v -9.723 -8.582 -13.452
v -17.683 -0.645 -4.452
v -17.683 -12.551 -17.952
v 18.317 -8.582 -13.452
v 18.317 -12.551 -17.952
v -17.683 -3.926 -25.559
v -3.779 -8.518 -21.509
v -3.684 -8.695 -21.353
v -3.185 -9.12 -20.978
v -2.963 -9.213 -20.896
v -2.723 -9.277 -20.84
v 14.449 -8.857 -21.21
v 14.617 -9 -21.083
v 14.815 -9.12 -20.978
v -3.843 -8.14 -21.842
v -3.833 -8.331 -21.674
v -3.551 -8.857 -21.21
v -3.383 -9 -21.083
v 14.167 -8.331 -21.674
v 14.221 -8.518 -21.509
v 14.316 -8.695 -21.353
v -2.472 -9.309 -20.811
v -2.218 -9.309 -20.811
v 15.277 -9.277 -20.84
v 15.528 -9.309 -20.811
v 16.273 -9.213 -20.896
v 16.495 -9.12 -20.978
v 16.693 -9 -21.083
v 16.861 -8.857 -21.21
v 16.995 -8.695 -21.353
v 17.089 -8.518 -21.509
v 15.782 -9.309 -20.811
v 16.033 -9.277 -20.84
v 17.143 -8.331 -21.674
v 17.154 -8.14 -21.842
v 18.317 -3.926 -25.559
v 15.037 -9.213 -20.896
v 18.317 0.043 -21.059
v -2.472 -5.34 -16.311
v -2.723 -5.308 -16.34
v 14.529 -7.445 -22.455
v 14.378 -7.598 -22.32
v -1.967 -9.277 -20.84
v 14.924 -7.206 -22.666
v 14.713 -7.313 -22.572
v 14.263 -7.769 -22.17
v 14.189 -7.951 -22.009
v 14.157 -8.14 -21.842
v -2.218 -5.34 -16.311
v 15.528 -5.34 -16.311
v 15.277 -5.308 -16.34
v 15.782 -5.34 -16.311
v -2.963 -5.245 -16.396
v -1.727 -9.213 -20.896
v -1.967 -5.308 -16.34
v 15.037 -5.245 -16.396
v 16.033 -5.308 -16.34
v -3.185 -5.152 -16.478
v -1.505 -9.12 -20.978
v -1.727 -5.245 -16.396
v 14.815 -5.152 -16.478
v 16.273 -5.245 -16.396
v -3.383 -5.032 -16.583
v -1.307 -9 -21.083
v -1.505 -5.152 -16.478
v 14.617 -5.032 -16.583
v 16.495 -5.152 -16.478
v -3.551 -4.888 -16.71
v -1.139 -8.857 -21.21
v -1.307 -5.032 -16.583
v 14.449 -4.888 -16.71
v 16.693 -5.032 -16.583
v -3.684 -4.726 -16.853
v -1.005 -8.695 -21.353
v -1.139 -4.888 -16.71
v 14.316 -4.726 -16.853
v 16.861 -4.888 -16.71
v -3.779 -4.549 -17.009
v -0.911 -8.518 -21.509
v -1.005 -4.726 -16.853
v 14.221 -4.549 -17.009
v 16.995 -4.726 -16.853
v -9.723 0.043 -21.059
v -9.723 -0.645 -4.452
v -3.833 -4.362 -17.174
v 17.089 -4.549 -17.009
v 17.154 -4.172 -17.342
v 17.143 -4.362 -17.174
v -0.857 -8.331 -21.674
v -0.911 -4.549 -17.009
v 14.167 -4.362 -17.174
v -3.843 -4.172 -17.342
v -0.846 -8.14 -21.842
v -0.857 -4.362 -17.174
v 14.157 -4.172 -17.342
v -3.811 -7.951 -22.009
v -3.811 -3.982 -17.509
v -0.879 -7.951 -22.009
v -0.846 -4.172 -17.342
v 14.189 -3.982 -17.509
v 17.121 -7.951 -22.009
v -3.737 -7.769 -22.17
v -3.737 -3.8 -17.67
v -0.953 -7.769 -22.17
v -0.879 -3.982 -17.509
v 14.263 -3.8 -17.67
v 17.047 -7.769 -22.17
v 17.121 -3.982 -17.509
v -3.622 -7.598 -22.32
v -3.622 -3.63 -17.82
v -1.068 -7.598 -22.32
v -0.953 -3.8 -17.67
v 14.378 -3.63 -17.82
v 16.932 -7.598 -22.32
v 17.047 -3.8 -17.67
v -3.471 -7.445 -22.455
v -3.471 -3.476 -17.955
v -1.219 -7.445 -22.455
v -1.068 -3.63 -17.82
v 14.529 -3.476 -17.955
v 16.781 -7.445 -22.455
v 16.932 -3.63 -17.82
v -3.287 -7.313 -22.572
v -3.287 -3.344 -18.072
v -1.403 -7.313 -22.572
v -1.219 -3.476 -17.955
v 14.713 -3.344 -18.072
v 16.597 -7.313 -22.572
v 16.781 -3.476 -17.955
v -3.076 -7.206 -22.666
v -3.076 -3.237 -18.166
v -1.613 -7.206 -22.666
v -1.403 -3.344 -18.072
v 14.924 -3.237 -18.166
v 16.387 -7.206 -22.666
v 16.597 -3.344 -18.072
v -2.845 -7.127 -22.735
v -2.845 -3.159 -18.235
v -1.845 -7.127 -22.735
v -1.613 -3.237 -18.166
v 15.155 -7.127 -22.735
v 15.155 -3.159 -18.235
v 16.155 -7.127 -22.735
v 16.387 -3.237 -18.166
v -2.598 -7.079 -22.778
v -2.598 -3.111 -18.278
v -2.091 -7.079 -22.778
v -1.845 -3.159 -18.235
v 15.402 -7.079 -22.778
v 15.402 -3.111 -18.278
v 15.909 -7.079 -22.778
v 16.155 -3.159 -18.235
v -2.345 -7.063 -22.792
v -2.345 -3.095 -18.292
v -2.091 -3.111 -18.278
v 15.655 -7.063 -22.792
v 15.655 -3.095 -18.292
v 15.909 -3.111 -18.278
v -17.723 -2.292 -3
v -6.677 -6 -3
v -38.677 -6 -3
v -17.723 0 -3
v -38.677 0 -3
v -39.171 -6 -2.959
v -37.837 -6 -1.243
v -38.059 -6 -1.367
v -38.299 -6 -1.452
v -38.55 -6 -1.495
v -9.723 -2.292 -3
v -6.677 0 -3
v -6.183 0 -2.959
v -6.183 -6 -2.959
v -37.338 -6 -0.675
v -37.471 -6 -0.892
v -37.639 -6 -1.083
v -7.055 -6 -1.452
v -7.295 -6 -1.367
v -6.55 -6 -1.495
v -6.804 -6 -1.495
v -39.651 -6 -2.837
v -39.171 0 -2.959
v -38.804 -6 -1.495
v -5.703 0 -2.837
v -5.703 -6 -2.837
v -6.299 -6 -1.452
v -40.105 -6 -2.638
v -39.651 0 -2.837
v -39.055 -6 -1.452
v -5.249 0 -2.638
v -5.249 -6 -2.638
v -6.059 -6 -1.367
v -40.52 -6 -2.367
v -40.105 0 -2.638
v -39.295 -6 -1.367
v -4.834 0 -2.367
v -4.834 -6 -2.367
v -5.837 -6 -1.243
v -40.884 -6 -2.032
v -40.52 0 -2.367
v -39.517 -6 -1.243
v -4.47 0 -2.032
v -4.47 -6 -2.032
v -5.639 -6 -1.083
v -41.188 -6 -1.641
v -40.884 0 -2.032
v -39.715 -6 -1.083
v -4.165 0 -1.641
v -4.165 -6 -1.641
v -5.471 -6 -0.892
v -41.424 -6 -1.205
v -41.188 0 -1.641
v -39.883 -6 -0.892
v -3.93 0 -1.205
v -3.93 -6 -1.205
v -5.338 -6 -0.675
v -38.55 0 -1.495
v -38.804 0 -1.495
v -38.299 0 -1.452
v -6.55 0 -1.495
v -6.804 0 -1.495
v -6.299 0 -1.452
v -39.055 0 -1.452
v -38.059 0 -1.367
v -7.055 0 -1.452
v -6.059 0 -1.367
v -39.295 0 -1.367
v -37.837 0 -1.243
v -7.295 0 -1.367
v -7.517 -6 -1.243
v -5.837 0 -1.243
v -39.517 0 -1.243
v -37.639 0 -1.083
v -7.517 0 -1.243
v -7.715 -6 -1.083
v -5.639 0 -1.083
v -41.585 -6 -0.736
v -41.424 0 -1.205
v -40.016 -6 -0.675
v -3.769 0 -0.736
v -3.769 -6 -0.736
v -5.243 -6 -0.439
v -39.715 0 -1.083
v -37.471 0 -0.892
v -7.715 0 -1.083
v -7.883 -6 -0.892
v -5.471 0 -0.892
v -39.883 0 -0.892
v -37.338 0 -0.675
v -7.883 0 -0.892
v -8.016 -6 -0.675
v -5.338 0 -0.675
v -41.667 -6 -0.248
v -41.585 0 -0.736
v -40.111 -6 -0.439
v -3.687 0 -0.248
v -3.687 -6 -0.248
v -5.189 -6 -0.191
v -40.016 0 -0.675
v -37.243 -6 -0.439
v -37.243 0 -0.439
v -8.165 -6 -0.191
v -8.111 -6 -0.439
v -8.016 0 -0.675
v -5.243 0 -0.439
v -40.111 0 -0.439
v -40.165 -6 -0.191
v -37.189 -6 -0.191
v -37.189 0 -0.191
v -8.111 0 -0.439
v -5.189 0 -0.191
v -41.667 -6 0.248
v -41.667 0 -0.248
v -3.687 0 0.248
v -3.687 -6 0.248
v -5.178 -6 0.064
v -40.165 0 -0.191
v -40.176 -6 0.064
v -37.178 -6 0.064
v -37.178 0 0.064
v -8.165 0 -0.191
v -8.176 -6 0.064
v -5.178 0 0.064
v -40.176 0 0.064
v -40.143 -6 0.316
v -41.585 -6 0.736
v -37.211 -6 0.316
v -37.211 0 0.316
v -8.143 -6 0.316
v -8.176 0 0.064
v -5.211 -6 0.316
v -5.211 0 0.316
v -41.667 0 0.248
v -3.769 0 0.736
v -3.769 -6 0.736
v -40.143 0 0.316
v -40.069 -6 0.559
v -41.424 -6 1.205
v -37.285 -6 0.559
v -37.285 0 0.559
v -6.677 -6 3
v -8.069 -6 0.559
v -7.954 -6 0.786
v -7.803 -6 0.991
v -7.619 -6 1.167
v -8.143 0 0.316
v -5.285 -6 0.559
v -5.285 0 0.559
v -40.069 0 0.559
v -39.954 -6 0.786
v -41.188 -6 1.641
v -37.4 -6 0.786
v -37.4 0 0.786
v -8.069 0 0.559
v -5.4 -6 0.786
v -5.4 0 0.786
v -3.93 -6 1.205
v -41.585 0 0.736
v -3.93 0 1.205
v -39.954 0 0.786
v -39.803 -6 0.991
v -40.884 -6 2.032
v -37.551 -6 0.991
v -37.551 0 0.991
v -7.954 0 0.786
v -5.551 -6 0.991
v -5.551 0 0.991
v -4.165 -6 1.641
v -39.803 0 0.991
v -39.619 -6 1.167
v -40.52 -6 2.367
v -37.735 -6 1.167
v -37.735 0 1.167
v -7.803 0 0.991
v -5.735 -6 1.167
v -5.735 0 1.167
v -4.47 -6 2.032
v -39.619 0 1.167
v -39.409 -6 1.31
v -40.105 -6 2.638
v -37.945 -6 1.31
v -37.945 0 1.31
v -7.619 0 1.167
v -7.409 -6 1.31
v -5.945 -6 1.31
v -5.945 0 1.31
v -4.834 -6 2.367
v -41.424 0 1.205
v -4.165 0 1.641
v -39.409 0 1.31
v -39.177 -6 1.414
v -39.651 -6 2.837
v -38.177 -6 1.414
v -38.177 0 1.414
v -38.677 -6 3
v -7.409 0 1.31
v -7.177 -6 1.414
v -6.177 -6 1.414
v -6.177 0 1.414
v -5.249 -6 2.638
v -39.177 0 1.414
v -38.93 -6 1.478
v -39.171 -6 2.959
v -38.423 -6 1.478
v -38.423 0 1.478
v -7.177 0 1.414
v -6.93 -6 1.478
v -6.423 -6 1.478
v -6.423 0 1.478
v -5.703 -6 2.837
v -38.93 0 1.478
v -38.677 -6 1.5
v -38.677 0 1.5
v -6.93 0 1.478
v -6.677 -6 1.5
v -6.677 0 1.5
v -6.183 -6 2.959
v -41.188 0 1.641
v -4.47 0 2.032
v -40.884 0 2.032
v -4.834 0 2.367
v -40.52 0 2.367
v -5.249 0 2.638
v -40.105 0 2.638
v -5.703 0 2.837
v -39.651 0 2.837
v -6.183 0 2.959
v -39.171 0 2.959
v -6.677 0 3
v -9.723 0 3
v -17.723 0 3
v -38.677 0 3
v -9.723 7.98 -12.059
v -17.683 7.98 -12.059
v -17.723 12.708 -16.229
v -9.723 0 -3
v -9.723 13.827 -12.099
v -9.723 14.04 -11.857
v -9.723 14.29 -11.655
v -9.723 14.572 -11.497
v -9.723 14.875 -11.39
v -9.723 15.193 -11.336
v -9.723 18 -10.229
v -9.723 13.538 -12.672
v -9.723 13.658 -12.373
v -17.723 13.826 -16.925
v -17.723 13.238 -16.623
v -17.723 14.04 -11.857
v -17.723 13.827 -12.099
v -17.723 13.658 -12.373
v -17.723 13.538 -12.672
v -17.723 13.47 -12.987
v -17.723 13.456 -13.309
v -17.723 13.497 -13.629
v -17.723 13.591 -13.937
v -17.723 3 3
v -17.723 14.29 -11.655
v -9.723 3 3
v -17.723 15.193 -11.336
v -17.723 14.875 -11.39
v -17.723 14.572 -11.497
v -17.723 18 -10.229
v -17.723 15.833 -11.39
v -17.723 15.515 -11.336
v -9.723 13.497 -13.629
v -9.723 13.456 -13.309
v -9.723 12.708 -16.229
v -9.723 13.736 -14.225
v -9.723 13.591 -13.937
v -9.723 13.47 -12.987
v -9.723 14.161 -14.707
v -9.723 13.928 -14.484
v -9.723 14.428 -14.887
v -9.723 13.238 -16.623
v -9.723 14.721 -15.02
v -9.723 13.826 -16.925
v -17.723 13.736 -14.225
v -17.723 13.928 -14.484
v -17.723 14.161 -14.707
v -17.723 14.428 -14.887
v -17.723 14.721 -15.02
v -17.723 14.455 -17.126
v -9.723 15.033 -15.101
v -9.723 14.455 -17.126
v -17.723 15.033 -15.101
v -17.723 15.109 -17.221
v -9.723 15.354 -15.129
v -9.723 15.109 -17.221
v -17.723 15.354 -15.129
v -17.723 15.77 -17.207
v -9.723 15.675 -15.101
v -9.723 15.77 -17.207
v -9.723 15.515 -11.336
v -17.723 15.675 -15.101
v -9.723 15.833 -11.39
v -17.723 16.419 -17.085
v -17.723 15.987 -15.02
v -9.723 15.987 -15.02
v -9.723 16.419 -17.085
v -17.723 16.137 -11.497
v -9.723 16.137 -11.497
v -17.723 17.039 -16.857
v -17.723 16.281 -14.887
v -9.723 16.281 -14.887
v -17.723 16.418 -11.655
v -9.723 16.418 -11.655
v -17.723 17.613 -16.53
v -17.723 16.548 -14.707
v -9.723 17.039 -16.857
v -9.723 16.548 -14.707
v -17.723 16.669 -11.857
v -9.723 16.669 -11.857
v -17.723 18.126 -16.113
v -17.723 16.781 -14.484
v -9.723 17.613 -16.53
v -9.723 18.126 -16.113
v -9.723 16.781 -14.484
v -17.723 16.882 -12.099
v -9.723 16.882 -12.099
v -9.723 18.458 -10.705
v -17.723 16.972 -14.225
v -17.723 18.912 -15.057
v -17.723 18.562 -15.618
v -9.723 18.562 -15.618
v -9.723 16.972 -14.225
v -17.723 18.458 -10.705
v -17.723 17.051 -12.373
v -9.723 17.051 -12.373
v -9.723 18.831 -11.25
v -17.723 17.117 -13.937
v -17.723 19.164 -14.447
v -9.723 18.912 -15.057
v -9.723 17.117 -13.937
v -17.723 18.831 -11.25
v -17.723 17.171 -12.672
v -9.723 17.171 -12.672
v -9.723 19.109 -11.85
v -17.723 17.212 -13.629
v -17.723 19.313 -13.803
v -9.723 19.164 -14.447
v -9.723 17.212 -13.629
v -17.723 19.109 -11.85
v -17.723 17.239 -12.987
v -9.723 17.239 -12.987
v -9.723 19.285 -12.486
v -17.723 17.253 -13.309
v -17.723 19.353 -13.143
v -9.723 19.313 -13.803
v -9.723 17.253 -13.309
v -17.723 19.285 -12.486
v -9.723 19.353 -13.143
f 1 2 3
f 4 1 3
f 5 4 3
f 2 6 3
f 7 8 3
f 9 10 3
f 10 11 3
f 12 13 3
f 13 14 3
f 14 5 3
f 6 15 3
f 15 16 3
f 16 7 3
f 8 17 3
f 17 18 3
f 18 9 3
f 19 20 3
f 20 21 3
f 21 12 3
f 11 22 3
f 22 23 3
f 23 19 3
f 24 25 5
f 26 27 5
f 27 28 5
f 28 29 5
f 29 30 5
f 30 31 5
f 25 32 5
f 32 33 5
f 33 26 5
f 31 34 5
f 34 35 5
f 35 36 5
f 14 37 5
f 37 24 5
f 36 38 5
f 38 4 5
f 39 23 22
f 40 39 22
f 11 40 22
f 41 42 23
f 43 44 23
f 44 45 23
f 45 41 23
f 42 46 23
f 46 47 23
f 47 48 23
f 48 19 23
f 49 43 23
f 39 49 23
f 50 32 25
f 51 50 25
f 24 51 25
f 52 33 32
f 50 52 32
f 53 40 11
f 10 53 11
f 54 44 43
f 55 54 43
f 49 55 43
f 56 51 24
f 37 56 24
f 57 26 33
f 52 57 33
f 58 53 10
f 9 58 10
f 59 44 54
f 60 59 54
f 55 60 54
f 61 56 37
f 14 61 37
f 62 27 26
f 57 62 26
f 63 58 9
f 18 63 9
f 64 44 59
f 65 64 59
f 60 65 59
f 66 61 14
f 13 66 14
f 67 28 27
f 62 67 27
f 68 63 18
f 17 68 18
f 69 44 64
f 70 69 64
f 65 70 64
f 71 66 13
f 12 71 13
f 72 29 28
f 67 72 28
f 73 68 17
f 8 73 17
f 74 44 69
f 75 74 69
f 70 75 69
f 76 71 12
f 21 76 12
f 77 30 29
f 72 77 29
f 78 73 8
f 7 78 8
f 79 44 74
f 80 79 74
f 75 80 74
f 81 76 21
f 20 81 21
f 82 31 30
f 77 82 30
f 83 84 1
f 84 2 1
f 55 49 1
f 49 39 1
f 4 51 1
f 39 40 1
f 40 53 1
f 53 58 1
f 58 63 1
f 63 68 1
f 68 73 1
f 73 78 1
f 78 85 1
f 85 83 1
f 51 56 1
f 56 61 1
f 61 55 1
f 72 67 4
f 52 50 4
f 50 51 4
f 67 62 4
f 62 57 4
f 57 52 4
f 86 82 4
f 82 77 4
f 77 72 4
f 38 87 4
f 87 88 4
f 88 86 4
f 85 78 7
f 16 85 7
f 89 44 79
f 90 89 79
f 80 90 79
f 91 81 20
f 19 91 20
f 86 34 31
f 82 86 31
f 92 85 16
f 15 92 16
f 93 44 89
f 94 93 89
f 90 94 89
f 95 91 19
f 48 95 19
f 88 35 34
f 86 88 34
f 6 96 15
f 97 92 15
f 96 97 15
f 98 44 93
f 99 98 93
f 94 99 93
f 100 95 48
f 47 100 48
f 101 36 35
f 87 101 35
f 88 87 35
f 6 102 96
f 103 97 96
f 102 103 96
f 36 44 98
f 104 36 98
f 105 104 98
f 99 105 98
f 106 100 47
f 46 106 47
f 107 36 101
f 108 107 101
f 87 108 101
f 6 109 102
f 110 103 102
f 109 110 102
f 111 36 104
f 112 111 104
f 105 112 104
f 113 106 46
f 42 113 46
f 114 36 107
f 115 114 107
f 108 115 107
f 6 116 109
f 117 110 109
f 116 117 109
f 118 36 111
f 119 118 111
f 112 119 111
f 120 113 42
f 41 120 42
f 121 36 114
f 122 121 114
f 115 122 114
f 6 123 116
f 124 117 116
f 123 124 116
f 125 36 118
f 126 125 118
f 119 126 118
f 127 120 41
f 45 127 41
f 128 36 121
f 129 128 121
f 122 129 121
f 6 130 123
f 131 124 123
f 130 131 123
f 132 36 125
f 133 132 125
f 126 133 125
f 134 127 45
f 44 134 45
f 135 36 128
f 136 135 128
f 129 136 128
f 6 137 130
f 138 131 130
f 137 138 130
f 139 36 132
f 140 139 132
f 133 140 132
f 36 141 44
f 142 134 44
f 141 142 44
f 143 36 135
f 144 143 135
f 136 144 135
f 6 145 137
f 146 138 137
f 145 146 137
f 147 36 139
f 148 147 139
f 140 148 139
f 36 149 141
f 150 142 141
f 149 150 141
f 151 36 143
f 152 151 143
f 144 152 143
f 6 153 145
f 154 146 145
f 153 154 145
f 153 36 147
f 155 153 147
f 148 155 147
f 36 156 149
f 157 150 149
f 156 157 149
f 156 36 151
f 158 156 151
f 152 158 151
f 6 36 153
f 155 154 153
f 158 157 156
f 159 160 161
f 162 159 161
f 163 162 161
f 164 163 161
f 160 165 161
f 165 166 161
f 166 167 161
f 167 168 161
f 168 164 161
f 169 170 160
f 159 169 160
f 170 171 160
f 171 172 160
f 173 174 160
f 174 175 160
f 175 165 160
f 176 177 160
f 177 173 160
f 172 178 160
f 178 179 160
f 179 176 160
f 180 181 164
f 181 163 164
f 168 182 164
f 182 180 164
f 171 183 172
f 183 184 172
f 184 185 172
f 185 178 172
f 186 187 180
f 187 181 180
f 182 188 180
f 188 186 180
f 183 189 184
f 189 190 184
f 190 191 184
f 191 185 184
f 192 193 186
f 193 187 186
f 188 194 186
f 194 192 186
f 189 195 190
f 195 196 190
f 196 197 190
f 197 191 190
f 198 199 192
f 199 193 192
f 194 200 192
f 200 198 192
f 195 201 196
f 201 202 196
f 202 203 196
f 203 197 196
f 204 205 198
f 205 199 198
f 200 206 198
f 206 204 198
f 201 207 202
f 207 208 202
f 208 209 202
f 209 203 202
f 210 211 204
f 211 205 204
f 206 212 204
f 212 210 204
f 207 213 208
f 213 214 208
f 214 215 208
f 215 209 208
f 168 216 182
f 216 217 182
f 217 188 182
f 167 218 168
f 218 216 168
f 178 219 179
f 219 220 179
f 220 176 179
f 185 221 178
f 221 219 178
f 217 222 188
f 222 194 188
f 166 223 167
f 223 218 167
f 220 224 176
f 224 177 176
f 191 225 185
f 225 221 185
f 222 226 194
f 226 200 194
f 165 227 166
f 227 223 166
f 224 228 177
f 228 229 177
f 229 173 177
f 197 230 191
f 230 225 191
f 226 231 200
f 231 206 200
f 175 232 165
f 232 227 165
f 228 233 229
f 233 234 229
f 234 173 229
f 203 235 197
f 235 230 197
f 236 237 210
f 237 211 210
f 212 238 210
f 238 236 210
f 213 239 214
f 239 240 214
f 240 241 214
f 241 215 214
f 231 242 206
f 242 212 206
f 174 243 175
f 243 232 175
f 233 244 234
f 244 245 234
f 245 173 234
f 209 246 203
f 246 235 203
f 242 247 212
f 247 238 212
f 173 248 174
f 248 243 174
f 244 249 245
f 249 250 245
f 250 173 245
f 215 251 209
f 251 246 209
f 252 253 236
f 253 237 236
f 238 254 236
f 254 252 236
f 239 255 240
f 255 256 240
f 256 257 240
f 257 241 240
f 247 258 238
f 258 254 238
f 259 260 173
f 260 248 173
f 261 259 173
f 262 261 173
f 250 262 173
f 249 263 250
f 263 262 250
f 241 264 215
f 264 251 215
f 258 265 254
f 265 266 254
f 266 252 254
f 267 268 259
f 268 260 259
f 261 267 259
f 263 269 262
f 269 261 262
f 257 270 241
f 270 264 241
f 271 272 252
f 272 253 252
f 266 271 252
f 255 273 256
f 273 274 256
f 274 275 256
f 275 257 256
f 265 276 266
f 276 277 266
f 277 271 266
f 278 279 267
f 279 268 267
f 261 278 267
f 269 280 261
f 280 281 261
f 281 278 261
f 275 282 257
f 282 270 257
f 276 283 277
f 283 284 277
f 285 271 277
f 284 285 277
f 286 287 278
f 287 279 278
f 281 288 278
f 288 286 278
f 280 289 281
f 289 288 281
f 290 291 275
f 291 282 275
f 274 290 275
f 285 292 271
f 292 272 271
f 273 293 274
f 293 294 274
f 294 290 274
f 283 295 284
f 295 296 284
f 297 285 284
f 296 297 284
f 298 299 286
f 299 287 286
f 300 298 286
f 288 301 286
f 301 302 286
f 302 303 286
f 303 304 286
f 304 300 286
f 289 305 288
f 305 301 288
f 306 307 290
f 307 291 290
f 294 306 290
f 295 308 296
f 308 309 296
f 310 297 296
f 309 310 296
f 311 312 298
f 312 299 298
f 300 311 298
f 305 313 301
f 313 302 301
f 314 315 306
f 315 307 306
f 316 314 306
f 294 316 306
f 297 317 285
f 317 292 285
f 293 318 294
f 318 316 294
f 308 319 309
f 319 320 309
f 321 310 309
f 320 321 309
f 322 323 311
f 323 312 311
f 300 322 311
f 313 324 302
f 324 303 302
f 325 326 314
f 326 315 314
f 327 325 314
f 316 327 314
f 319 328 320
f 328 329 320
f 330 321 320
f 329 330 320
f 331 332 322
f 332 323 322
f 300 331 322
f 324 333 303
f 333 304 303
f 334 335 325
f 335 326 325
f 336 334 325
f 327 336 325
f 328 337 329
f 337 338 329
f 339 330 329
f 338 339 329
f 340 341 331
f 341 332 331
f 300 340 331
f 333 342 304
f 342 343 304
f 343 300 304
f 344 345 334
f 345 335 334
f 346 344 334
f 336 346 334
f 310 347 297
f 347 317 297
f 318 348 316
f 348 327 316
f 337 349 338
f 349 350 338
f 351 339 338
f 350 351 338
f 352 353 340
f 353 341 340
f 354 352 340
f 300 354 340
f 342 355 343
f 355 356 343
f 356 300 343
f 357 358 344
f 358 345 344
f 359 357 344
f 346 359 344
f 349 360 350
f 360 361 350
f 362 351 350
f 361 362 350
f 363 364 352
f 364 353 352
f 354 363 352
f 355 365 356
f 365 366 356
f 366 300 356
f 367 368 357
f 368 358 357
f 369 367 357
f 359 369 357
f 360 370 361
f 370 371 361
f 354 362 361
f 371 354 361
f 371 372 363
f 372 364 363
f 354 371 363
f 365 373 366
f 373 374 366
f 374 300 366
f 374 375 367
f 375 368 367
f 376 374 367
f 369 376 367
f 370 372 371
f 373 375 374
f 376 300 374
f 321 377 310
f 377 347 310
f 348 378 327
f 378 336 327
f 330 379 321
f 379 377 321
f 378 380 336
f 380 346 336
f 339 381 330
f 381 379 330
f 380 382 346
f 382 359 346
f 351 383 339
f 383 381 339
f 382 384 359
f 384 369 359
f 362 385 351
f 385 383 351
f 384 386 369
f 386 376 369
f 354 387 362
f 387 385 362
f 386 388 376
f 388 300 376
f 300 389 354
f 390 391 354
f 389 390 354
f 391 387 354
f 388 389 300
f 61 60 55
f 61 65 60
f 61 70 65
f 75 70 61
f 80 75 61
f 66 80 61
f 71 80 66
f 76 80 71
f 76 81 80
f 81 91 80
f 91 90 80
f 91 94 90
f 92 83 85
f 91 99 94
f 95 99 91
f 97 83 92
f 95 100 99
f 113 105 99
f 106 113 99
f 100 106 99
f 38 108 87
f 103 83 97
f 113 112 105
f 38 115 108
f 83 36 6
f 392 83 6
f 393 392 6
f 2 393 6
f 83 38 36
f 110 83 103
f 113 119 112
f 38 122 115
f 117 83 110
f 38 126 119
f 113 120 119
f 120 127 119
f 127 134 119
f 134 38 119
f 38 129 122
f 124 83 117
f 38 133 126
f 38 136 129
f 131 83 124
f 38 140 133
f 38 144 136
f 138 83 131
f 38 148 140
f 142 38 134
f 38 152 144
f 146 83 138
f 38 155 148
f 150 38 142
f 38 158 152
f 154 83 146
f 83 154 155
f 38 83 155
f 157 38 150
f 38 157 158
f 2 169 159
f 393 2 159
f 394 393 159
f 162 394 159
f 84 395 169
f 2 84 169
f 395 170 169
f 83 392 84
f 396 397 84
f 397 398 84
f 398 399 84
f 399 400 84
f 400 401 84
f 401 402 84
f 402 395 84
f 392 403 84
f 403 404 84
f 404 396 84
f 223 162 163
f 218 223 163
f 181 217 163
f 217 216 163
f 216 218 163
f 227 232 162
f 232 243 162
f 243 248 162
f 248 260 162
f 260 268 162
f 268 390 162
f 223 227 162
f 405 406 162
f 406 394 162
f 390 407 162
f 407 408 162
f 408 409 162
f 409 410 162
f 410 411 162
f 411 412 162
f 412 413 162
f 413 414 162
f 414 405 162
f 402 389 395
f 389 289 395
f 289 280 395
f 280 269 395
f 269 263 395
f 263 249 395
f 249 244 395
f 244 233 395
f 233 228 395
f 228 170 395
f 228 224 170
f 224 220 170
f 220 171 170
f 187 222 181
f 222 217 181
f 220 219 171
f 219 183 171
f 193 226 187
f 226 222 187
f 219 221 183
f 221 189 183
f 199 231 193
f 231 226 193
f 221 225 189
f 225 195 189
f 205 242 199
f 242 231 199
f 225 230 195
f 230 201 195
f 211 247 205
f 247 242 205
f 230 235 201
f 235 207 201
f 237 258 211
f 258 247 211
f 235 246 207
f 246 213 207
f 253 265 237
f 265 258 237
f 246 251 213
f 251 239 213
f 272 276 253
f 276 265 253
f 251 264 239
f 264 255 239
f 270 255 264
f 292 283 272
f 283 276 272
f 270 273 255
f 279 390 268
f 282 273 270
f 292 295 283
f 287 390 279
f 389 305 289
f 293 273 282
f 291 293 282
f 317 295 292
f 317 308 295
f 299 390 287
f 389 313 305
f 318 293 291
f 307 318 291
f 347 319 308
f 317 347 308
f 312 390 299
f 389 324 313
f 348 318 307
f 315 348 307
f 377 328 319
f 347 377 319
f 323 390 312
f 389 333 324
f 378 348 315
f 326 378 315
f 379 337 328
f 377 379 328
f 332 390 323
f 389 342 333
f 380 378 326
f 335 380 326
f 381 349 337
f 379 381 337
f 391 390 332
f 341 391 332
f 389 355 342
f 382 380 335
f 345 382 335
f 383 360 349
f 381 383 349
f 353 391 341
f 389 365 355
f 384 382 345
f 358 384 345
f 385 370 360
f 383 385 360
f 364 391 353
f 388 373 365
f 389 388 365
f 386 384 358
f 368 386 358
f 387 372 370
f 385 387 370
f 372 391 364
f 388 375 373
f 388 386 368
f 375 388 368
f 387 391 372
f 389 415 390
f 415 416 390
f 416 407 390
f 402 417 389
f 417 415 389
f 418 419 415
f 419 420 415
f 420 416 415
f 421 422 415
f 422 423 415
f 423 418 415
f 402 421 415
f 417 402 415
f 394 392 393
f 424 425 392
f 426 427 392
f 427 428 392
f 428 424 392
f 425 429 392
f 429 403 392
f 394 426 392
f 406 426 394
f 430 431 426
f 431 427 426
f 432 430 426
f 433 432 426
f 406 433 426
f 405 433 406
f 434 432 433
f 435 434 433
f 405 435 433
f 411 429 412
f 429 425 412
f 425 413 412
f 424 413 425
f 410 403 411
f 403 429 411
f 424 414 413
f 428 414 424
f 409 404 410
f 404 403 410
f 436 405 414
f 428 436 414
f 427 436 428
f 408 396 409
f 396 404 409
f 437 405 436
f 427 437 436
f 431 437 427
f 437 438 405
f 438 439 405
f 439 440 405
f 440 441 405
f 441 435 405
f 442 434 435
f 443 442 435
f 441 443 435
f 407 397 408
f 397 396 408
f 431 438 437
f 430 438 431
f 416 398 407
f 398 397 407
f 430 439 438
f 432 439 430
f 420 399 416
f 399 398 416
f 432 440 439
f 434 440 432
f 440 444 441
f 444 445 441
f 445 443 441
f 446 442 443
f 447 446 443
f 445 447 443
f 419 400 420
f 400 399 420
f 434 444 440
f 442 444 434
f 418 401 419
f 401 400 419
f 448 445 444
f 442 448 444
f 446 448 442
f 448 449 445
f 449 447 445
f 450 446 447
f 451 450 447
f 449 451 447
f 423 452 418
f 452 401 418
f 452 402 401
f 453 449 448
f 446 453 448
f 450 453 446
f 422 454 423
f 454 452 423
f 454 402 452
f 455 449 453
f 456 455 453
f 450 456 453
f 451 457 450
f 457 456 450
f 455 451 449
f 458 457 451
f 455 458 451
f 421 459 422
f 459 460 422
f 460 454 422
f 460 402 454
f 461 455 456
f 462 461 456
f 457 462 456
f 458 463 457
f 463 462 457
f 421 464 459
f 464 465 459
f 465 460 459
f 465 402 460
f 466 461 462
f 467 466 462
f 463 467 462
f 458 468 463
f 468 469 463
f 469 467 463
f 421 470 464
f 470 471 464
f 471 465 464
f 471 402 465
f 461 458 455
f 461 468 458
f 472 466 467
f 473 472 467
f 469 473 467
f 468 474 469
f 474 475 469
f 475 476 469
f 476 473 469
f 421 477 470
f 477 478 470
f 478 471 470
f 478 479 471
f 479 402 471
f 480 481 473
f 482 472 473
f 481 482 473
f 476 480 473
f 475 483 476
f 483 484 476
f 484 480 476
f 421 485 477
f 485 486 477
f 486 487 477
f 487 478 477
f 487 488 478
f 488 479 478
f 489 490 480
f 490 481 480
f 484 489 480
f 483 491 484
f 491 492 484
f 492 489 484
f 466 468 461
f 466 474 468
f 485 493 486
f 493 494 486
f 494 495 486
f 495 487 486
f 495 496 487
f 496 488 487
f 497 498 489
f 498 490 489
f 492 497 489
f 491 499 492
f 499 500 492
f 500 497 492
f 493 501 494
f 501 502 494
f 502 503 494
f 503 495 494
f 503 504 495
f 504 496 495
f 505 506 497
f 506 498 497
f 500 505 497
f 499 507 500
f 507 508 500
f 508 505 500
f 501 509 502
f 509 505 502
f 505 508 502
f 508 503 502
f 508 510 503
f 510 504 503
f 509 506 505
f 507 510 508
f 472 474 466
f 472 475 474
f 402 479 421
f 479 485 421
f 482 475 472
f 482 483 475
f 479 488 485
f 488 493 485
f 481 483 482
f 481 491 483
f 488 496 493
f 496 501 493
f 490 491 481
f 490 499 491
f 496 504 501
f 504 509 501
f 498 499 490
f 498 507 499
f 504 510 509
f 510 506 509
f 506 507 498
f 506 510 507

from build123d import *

# Parameters (mm, degrees)
SKETCH_1_R          = 1.5
EXTRUDE_2_DEPTH     = 6
SKETCH_1_4_W        = 8
SKETCH_1_4_H        = 6
EXTRUDE_3_DEPTH     = 3
EXTRUDE_28_DEPTH    = 8
SKETCH_4_W          = 7.960549586
SKETCH_4_H          = 11.5
EXTRUDE_29_DEPTH    = 18
EXTRUDE_30_DEPTH    = 36
SKETCH_8_R          = 1.9
CUT_EXTRUDE_2_DEPTH = 19
SKETCH_7_R          = 1.5
CUT_EXTRUDE_3_DEPTH = 10


with BuildPart() as part:
    # 草圖1 → 填料-伸長2 (new body)
    with BuildSketch(Plane(origin=(0, 0, 0), x_dir=(1, 0, 0), z_dir=(0, 1, 0))):
        with BuildLine():
            Line((-38.676968887, -3), (-6.676968887, -3))
            ThreePointArc((-6.676968887, -3), (-3.676968887, 0), (-6.676968887, 3))
            Line((-6.676968887, 3), (-38.676968887, 3))
            ThreePointArc((-38.676968887, 3), (-41.676968887, 0), (-38.676968887, -3))
        make_face()
        with Locations((-38.676968887, 0)):
            Circle(SKETCH_1_R, mode=Mode.SUBTRACT)
        with Locations((-6.676968887, 0)):
            Circle(SKETCH_1_R, mode=Mode.SUBTRACT)
    extrude(amount=-EXTRUDE_2_DEPTH)

    # 草圖1<4> → 填料-伸長3 (add)
    with BuildSketch(Plane(origin=(0, 0, 0), x_dir=(1, 0, 0), z_dir=(0, 1, 0))):
        with Locations((-13.722758256, 0)):
            Rectangle(SKETCH_1_4_W, SKETCH_1_4_H)
    extrude(amount=EXTRUDE_3_DEPTH)

    # 草圖3 → 填料-伸長28 (add)
    with BuildSketch(Plane(origin=(-9.722758256, 0, 0), x_dir=(0, 0, -1), z_dir=(1, 0, 0))):
        with BuildLine():
            Line((3, -2.291502622), (16.228756555, 12.708497378))
            ThreePointArc((16.228756555, 12.708497378), (15.874507866, 18.354248689), (10.228756555, 18))
            Line((10.228756555, 18), (-3, 3))
            Line((-3, 3), (3, -2.291502622))
        make_face()
    extrude(amount=-EXTRUDE_28_DEPTH)

    # 草圖4 → 填料-伸長29 (add)
    with BuildSketch(Plane(origin=(0, -2.49076751, -2.824264888), x_dir=(-1, 0, 0), z_dir=(0, -0.6614378277661491, -0.7499999999999987))):
        with Locations((13.703033049, 8.211179299)):
            Rectangle(SKETCH_4_W, SKETCH_4_H)
    extrude(amount=EXTRUDE_29_DEPTH)

    # 草圖6 → 填料-伸長30 (add)
    with BuildSketch(Plane.ZY.offset(17.683307842)):
        Polygon((-25.558716996, -3.925763935), (-17.952181977, -12.550763935), (-13.452181977, -8.582136969), (-21.058716996, 0.042863031), align=None)
    extrude(amount=-EXTRUDE_30_DEPTH)

    # 草圖8 → 除料-伸長2 (cut)
    with BuildSketch(Plane(origin=(-9.722758256, 0, 0), x_dir=(0, 0, -1), z_dir=(1, 0, 0))):
        with Locations((13.228756555, 15.354248689)):
            Circle(SKETCH_8_R)
    extrude(amount=-CUT_EXTRUDE_2_DEPTH, mode=Mode.SUBTRACT)

    # 草圖7 → 除料-伸長3 (cut)
    with BuildSketch(Plane(origin=(0, -14.396648409, -16.324264888), x_dir=(-1, 0, 0), z_dir=(0, -0.6614378277661491, -0.7499999999999987))):
        with Locations((2.344835531, 8.278010001)):
            Circle(SKETCH_7_R)
        with Locations((-15.655164469, 8.278010001)):
            Circle(SKETCH_7_R)
    extrude(amount=-CUT_EXTRUDE_3_DEPTH, mode=Mode.SUBTRACT)


solid = part.part
